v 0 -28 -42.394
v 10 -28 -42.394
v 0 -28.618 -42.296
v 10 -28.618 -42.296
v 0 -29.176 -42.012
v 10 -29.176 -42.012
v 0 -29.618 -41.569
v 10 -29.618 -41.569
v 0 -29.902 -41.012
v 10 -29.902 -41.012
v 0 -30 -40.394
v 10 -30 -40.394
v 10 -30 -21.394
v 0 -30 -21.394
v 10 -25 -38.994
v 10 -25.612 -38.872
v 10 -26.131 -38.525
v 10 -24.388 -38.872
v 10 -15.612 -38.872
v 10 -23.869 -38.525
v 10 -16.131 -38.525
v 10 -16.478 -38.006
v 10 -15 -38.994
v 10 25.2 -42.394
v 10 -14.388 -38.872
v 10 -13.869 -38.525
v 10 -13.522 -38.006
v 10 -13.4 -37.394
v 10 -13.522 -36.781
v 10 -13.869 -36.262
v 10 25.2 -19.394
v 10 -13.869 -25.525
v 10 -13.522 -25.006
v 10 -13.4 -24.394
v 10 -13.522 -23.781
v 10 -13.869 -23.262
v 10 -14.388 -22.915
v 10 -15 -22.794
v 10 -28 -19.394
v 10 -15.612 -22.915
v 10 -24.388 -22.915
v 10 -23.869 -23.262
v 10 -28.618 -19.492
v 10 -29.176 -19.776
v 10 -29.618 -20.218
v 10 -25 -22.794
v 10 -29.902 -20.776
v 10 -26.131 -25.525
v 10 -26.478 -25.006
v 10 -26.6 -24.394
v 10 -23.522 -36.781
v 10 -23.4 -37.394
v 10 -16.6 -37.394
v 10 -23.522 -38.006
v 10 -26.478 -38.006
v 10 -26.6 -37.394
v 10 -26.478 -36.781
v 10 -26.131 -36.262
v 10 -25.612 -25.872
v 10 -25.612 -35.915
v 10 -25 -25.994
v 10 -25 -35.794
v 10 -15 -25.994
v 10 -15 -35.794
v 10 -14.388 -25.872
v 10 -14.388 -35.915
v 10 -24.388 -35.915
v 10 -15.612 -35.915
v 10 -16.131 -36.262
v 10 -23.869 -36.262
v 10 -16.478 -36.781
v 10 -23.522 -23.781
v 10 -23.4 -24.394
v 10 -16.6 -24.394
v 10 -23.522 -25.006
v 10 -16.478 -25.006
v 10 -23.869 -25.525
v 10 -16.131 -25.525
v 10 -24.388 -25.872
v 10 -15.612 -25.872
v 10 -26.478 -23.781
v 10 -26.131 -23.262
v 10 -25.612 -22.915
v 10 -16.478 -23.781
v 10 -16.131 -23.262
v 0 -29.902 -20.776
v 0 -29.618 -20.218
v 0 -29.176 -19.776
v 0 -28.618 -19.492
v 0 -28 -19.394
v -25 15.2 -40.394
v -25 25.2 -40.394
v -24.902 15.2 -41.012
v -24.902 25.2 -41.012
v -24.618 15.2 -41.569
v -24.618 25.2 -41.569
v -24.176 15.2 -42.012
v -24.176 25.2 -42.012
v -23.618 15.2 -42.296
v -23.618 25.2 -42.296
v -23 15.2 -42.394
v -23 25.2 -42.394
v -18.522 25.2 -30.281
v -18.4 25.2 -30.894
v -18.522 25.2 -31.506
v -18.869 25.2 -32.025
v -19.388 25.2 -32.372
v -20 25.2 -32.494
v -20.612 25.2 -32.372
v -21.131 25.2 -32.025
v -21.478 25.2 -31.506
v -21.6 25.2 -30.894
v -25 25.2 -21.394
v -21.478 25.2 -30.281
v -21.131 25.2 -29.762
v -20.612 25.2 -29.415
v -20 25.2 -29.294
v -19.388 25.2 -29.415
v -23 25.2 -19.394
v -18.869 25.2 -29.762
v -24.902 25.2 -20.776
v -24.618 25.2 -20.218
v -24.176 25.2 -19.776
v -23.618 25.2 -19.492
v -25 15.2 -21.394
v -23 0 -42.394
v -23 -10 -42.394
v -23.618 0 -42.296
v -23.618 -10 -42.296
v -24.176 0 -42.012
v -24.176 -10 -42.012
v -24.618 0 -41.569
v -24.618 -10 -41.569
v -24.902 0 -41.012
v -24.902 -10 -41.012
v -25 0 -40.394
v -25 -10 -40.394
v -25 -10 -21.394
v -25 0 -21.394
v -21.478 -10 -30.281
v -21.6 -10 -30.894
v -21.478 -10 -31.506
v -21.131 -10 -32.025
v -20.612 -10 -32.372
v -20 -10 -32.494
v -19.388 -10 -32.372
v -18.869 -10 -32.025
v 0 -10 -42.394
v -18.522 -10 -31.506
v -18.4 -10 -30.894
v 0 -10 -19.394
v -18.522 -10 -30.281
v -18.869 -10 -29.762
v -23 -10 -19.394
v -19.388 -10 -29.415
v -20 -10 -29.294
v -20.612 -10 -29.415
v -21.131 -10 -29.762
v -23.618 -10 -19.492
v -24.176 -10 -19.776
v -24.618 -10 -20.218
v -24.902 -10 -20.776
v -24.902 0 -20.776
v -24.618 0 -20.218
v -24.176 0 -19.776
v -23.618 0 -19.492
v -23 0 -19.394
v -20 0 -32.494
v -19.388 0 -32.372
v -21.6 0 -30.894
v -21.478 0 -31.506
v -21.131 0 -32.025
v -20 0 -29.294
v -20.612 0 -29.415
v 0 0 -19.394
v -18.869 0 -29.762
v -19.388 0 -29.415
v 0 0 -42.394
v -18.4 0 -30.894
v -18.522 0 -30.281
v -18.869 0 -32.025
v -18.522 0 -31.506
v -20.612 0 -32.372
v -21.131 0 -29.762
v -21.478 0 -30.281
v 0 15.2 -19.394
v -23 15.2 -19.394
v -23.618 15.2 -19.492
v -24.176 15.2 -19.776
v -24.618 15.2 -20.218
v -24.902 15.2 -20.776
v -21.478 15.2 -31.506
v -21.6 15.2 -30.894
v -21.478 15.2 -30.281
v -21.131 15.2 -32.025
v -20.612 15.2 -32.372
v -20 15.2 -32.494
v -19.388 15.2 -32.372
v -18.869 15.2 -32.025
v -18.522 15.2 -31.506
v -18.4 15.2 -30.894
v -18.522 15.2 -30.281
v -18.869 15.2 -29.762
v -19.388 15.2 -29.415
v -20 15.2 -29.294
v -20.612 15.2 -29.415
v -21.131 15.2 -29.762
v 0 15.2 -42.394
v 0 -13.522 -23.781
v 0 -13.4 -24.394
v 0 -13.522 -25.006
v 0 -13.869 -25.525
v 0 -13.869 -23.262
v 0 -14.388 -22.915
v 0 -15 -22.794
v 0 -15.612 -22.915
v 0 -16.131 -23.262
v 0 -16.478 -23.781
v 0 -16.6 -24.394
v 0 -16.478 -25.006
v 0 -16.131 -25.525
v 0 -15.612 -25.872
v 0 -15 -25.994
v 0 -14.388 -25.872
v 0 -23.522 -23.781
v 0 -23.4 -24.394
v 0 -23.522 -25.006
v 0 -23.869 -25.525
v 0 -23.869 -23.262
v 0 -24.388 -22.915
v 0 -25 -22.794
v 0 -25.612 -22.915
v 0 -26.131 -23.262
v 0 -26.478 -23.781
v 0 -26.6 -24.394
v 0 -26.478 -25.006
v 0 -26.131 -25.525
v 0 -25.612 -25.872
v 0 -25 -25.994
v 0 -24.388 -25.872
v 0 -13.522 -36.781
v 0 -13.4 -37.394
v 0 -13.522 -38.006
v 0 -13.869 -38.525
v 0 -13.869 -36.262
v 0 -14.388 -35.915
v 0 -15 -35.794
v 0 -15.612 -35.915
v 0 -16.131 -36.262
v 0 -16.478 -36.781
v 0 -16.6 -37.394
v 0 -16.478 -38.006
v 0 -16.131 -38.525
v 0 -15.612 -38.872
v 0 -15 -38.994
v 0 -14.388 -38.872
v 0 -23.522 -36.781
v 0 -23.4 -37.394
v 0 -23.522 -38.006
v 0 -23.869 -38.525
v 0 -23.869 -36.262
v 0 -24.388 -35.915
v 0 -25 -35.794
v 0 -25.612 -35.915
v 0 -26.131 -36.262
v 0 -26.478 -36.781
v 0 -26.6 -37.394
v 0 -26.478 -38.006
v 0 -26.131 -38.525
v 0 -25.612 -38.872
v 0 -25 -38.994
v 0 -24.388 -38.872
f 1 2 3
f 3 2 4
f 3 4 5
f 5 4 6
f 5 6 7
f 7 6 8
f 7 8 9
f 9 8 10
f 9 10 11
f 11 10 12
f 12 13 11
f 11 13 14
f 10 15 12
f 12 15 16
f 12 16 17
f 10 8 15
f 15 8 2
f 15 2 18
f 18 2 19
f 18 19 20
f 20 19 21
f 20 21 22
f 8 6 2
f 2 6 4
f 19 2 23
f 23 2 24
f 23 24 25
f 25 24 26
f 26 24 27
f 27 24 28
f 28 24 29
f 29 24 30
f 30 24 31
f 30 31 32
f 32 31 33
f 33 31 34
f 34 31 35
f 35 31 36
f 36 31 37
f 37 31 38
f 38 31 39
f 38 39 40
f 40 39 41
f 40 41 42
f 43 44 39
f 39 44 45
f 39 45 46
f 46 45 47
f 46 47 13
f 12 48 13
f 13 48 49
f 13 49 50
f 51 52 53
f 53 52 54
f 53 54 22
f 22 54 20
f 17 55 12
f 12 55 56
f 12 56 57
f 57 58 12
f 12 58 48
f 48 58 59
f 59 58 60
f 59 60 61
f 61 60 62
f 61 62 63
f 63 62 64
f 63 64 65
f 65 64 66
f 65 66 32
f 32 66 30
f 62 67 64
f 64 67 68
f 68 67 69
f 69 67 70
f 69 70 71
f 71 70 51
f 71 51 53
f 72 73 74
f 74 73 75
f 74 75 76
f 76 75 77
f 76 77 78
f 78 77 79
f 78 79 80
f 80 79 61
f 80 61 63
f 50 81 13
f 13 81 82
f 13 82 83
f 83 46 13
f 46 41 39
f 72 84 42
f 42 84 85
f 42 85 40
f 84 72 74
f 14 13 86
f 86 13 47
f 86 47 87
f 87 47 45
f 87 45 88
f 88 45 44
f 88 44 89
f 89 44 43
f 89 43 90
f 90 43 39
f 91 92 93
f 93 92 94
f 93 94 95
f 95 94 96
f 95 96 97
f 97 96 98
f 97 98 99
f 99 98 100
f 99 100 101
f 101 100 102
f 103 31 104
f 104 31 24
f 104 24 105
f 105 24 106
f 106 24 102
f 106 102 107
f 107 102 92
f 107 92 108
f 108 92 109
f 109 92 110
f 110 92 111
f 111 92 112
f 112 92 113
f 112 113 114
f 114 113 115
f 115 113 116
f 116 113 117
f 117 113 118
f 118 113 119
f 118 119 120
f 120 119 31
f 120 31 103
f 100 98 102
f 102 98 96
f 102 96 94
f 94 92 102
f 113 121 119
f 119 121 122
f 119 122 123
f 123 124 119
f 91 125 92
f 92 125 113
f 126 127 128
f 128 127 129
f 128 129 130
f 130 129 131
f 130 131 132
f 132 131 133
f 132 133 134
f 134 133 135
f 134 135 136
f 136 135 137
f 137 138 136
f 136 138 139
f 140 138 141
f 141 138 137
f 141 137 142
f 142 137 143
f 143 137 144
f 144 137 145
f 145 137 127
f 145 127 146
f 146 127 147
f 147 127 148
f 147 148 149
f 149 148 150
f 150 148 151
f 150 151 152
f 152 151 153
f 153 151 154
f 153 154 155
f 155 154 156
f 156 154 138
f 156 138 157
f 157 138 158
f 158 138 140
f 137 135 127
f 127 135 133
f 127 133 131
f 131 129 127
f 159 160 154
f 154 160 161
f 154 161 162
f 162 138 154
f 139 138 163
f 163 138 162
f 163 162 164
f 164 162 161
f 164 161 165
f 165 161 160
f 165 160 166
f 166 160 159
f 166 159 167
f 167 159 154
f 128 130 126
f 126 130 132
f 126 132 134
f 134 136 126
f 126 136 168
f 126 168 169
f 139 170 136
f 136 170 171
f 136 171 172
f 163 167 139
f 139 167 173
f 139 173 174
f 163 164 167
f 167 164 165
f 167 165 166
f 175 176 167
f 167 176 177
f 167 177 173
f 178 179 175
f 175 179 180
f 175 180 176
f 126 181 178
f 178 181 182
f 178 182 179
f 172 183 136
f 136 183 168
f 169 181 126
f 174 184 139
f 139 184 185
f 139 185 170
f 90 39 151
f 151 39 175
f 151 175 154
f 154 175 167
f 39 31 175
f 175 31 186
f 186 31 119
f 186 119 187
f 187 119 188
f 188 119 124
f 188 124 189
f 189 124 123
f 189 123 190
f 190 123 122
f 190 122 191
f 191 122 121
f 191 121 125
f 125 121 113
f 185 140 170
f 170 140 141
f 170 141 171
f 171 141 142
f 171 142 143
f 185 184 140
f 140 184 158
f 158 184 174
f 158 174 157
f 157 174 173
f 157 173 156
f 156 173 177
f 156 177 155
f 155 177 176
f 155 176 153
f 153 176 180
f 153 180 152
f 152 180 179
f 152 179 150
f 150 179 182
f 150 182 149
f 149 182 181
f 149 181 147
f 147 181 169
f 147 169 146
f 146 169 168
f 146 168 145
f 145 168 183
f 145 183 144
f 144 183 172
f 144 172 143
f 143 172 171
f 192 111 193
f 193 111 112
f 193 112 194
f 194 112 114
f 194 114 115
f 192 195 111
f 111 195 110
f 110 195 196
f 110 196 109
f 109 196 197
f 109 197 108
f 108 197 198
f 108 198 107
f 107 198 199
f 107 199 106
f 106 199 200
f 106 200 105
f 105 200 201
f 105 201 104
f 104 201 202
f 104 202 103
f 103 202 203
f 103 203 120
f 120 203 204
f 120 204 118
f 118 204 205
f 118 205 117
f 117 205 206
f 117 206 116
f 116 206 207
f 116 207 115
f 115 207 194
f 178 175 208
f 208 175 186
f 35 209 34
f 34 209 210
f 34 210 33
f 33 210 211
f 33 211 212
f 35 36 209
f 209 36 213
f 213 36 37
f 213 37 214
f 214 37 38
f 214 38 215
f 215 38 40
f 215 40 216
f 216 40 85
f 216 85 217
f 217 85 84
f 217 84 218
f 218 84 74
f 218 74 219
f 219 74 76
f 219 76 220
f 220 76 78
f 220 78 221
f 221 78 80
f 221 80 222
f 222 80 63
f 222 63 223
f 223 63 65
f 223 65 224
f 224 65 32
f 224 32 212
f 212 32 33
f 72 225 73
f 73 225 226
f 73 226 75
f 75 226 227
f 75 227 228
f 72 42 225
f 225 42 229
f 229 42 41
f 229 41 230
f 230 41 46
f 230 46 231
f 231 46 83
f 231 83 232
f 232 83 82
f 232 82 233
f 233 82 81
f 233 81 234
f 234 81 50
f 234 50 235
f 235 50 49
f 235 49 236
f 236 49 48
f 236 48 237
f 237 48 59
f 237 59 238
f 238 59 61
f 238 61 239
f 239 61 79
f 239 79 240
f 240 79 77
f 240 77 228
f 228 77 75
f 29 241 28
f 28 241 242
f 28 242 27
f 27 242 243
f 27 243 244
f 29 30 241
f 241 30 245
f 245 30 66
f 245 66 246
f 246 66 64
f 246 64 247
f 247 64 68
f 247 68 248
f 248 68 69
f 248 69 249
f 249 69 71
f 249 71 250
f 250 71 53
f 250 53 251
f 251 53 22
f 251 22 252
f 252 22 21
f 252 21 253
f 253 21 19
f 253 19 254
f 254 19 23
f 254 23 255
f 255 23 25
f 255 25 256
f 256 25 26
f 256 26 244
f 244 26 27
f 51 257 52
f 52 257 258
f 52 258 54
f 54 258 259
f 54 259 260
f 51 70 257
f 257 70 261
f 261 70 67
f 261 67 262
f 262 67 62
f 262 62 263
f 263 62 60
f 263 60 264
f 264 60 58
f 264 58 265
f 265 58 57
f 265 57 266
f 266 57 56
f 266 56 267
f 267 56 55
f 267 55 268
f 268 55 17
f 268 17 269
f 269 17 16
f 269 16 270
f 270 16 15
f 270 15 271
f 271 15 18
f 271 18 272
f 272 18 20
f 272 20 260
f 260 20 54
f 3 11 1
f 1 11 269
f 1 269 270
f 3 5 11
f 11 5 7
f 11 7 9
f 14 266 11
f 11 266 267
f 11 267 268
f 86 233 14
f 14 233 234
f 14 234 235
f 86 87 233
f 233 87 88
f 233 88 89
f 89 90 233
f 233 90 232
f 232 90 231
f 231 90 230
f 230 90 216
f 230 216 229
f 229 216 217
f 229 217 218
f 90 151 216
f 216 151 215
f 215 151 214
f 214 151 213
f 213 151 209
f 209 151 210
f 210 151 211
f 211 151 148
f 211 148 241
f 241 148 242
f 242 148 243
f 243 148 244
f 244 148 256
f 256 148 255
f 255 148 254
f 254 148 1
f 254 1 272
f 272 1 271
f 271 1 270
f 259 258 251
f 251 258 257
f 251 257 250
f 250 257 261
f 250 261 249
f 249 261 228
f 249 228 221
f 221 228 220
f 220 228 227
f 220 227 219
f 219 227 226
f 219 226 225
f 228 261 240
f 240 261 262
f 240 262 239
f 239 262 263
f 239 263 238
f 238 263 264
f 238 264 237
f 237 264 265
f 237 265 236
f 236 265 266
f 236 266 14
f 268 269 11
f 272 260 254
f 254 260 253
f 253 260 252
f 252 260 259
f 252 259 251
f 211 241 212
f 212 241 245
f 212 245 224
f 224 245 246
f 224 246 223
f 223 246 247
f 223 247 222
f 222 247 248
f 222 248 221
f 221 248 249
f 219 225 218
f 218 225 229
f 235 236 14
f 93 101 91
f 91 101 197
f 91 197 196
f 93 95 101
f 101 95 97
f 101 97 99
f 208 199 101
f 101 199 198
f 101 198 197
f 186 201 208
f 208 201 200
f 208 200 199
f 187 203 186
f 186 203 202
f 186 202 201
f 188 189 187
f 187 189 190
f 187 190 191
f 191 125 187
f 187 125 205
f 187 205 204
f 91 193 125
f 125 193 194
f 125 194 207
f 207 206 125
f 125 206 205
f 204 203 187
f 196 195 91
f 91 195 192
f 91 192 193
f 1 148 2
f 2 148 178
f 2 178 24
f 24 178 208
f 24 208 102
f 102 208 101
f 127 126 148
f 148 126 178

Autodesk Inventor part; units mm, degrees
ref_plane "YZ Plane" through (0, 0, 0) normal (1, 0, 0) x (0, 1, 0)
ref_plane "XZ Plane" through (0, 0, 0) normal (0, 1, 0) x (-1, 0, 0)
ref_plane "XY Plane" through (0, 0, 0) normal (0, 0, 1) x (1, 0, 0)
sketch "スケッチ1" plane through (0, 0, 0) normal (1, 0, 0) x (0, 1, 0)
  line L0 (0, 0) -> (15.2, 0)
  line L1 (15.2, 0) -> (15.2, -62.0281)
  line L2 (15.2, -62.0281) -> (0, -62.0281)
  line L3 (0, -62.0281) -> (0, 0)
  circle A0 centre (-15, -24.3937) radius 1.6
  circle A1 centre (-25, -24.3937) radius 1.6
  circle A2 centre (-15, -37.3937) radius 1.6
  circle A3 centre (-25, -37.3937) radius 1.6
  line L4 (25.2, -19.3937) -> (-10, -19.3937)
  line L5 (-10, -19.3937) -> (-10, -42.3937)
  line L6 (-10, -42.3937) -> (25.2, -42.3937)
  line L7 (25.2, -42.3937) -> (25.2, -19.3937)
  line L8 (-10, -19.3937) -> (-30, -19.3937)
  line L9 (-30, -19.3937) -> (-30, -42.3937)
  line L10 (-30, -42.3937) -> (-10, -42.3937)
  line L11 (-10, -42.3937) -> (-10, -19.3937)
  point P0 (0, -42.3937)
  point P1 (0, -19.3937)
  point P2 (15.2, -19.3937)
  point P3 (15.2, -42.3937)
  point P4 (-10, -42.3937)
  dimension "d0" = 15.2
  dimension "d1" = 3.2
  dimension "d2" = 3.2
  dimension "d3" = 3.2
  dimension "d4" = 3.2
  dimension "d5" = 10
  dimension "d6" = 10
  dimension "d7" = 13
  dimension "d8" = 13
  dimension "d9" = 0
  dimension "d10" = 0
  dimension "d12" = 10
  dimension "d13" = 10
  dimension "d14" = 5
  dimension "d15" = 5
  dimension "d16" = 5
  dimension "d17" = 0
  dimension "d18" = 5
extrude "押し出し1" add sketch "スケッチ1" against normal blind 25 contours L3 L6 L5 L4 | L4 L7 L6 L1
extrude "押し出し2" add sketch "スケッチ1" along normal blind 10 contours L4 L1 L6 L3 | L3 L6 L5 L4 | L4 L7 L6 L1 | L5 L10 L9 L8
sketch "スケッチ2" plane through (-25, 25.2, -19.3937) normal (0, 1, 0) x (1, 0, 0)
  line L0 (25, 23) -> (0, 23) projected
  line L1 (5, 23) -> (5, 0)
  line L2 (25, 0) -> (0, 0) projected
  line L3 (0, 0) -> (0, 23) projected
  point P0 (25, -19.3937)
  point P1 (5, 11.5)
  dimension "d23" = 5
hole "穴1" at (-20, 25.2, -30.8937) direction (0, -1, 0) diameter 3.2 end through all
fillet "フィレット1" radius 2 6 edges at (-25, 20.2, -19.3937) (-25, -5, -19.3937) (-25, -5, -42.3937) (-25, 20.2, -42.3937) (5, -30, -19.3937) (5, -30, -42.3937)
equation "\"d6\" = d5"
equation "\"d8\" = d7"
properties part number "dribl-v1-3DP-cc-f-1" material "ABS プラスチック"
